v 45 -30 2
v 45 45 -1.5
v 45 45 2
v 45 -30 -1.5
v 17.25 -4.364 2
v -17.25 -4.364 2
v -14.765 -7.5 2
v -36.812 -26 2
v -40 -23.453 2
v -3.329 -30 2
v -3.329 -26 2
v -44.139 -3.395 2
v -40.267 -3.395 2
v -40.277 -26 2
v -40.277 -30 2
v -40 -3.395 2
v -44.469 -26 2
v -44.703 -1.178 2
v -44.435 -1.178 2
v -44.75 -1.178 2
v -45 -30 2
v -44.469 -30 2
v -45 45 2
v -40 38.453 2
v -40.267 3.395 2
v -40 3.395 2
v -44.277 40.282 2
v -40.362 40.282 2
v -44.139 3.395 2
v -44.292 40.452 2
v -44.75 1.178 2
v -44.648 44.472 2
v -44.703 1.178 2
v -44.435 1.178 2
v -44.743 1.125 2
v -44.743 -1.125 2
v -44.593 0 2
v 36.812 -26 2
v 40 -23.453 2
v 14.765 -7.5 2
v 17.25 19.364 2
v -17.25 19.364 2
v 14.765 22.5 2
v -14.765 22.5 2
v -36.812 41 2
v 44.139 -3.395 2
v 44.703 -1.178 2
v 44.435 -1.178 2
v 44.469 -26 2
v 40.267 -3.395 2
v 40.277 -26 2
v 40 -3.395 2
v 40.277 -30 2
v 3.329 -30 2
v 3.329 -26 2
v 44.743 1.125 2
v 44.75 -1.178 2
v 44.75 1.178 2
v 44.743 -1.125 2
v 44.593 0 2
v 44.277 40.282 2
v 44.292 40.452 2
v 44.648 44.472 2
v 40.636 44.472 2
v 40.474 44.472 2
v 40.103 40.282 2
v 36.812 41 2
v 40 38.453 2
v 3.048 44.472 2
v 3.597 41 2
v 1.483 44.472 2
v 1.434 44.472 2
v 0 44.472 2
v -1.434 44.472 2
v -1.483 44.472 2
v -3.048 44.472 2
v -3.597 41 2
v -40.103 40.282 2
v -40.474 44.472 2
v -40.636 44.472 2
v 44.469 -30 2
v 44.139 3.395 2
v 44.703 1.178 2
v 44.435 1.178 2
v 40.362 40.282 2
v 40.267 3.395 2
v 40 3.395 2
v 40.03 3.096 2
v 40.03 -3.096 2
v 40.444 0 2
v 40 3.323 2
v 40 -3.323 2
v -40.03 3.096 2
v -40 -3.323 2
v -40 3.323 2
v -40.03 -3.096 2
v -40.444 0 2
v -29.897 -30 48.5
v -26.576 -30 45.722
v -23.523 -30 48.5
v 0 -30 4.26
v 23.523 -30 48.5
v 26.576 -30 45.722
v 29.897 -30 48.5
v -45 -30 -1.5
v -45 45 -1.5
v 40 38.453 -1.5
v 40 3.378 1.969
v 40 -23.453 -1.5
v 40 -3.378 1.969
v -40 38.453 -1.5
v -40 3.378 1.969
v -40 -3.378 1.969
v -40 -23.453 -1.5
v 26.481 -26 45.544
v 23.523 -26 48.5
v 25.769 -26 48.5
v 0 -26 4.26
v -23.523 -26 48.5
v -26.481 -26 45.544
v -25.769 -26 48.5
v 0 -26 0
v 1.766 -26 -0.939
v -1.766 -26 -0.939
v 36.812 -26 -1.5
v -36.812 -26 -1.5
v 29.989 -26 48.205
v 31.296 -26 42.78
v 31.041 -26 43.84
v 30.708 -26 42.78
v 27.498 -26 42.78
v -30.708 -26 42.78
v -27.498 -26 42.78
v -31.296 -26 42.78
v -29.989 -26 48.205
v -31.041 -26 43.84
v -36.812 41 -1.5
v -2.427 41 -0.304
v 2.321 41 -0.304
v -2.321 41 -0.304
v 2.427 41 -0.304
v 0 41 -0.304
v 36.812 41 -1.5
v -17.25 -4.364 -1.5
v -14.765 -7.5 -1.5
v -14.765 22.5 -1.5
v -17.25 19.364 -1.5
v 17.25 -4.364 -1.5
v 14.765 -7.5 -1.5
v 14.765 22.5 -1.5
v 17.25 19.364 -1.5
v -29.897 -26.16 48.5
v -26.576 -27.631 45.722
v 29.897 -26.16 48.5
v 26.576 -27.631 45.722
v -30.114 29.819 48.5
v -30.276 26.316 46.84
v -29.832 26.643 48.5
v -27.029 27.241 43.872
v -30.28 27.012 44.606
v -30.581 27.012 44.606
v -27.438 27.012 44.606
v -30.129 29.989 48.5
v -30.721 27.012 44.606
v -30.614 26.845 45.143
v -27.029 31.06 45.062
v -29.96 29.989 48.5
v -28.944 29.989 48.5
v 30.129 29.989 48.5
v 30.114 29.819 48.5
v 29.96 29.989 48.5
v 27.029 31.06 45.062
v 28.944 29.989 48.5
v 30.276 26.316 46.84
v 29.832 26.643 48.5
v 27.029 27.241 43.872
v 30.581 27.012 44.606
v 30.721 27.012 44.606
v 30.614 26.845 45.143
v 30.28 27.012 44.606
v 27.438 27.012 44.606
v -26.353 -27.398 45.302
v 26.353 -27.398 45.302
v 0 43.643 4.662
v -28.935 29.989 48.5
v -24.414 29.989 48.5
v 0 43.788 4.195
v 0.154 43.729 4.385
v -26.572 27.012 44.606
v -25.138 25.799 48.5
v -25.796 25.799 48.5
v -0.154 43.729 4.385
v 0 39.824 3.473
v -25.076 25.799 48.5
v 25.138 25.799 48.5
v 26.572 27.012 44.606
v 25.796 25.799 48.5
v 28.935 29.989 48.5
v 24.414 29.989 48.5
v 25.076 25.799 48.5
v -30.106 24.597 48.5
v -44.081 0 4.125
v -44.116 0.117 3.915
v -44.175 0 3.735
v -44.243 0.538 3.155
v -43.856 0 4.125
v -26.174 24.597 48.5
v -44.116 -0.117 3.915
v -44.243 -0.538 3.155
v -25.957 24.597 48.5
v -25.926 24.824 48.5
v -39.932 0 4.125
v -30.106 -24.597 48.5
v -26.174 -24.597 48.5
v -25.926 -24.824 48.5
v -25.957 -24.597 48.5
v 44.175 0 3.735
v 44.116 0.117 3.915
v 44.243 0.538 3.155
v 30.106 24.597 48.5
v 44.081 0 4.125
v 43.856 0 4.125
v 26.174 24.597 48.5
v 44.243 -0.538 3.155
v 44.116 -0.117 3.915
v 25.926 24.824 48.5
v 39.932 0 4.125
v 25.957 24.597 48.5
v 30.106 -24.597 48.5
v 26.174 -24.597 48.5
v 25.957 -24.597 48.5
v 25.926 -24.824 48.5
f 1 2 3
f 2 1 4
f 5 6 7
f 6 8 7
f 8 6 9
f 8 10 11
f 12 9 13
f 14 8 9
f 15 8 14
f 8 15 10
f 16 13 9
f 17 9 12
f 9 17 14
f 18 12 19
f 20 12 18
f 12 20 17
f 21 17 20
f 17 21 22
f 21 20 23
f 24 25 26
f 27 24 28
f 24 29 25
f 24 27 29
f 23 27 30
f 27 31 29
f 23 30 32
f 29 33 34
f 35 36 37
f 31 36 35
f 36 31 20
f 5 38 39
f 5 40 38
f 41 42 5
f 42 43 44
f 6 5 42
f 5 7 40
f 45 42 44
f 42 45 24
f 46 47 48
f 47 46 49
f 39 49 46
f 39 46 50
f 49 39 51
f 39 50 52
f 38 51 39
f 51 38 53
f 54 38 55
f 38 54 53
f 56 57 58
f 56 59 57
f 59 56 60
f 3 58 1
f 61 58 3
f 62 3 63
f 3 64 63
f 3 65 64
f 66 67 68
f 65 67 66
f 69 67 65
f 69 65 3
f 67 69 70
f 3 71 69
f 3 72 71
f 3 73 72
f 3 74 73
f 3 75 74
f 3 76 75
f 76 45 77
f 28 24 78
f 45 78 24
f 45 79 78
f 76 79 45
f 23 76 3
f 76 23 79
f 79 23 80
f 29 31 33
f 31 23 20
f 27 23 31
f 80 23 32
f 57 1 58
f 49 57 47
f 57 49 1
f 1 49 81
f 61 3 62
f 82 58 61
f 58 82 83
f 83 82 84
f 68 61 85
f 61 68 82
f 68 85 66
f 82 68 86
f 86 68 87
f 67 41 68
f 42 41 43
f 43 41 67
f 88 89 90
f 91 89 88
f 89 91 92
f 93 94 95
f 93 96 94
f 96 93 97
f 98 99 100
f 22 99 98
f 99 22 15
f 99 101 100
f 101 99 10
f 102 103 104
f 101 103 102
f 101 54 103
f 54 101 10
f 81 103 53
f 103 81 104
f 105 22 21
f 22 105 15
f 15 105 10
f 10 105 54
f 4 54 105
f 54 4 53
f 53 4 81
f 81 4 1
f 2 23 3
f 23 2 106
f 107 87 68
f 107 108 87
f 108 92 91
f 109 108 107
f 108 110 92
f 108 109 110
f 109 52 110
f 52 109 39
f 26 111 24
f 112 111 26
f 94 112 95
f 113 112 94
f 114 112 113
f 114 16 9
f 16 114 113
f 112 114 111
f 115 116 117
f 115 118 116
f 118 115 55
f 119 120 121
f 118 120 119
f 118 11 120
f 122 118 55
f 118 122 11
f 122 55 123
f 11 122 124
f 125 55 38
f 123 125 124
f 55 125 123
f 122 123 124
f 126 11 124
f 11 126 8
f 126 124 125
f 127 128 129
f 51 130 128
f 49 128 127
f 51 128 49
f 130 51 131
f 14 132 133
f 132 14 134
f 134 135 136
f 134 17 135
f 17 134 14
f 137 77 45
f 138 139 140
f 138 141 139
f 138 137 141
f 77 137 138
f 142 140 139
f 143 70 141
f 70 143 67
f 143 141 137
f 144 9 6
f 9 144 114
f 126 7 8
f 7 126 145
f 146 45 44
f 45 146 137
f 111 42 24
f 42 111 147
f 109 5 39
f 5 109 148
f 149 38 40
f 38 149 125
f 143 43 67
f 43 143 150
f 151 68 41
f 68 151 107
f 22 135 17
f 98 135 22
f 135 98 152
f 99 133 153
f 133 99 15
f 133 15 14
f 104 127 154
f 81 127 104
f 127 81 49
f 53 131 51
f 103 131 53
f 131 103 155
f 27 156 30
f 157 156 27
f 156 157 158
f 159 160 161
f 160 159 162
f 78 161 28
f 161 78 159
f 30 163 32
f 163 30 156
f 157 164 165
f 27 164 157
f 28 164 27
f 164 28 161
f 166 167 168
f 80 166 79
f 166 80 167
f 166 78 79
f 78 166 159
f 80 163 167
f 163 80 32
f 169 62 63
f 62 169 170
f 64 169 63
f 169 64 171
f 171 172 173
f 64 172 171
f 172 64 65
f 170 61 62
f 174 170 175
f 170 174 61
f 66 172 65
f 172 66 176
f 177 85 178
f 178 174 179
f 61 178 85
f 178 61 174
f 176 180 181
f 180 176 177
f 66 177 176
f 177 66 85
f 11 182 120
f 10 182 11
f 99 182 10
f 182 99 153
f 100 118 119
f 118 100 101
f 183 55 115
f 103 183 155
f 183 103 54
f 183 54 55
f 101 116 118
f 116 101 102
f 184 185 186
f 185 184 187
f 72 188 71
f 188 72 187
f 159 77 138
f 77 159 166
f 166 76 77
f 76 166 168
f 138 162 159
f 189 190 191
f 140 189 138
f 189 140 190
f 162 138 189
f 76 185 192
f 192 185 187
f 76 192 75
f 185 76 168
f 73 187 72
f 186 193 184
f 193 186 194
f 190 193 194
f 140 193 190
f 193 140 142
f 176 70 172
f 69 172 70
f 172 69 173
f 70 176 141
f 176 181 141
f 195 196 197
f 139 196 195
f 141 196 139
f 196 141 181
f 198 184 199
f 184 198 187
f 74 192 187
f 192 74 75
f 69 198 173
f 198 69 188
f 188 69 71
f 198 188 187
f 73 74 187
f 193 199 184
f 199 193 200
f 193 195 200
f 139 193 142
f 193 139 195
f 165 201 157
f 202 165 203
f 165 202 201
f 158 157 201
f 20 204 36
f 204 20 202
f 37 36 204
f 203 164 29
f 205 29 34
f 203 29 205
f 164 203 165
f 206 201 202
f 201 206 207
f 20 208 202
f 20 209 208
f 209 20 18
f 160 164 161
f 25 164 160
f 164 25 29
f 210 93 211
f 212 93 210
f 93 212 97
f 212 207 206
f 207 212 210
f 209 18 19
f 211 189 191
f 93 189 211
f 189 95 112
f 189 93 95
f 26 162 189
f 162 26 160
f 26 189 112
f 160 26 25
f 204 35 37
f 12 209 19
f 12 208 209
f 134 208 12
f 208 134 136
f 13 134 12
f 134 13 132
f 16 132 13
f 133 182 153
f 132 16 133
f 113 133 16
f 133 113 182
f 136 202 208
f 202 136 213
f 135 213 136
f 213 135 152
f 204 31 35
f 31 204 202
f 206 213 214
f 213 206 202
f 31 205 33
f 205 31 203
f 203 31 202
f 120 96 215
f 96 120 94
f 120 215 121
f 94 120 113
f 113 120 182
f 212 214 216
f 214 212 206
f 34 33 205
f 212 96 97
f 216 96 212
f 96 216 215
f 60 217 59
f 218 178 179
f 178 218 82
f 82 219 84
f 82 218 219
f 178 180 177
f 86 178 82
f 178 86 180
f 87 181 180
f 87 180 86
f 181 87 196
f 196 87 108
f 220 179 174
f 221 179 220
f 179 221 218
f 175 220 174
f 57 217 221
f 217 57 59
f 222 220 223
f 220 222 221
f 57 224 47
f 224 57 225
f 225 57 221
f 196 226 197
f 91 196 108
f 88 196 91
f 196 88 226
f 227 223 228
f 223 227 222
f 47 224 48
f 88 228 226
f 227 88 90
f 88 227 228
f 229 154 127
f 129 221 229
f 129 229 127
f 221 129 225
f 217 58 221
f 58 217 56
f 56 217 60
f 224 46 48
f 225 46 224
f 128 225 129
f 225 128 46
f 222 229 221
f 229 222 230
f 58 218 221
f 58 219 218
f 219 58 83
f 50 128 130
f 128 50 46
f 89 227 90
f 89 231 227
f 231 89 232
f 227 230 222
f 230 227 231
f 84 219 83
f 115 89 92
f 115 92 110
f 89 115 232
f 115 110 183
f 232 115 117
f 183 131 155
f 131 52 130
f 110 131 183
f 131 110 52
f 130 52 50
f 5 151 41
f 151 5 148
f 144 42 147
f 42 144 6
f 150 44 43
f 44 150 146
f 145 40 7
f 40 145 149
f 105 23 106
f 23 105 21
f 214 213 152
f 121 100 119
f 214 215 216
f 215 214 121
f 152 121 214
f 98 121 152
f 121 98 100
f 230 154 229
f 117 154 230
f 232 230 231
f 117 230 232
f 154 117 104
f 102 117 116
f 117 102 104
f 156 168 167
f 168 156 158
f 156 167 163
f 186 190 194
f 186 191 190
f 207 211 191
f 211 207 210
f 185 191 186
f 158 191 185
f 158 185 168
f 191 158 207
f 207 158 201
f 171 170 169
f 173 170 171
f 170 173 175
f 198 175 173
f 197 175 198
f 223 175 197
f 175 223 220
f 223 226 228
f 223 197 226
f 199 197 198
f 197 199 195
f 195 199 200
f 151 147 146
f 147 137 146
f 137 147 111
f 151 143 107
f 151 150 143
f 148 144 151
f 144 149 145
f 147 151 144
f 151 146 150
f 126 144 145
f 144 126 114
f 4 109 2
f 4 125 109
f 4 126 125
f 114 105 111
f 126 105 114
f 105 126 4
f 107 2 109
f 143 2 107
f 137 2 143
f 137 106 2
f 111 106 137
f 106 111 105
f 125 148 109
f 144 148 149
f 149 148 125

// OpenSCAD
// file: ../lib/torus.scad
module torus(
outer_diameter,
circle_diameter
) {
    rotate_extrude(convexity = 4)
    translate([(outer_diameter-circle_diameter)/2, 0, 0])
    circle(d=circle_diameter, $fn=$fn/3);
}
// file: ../rocket-bottom.scad
use <lib/centered_cube.scad>
use <lib/torus.scad>

translate([0,0,-1.1])
ccube([93,93,1]);

module nozzle() {
    color([.2,.2,.2])
    cylinder(d1=40, d2=16+(40-16)*((40-16)/40), h=16);

    color([.35,.35,.35])
    translate([0,0,16])
    torus(34, 5);

    color([.5,.5,.5])
    translate([0,0,16])
    cylinder(d1=16+(40-16)*((40-16)/40), d2=16, h=40-16);
}


module nozzle_and_fin() {
    nozzle();

    color([.8, .8, .8])
    translate([0,0,41.6]) {
        intersection() {
            cylinder(d=38, h=16);
            translate([0,0,-1])
            ccube([50,50,20], centered=[0,1,0]);
        }
        rotate([0,0,180])
        ccube([4,38,16], centered=[0,1,0]);
    }
    
    color([0,0,0])
    translate([0,0,40])
    ccube([16, 16, 8], centered=[1,1,0]);


    // fin mount
    color([1,1,1])
    translate([0,0,57.6])
    resize([38,32,64])
    cylinder(d1=32, d2=16, h=64);

    // fin
    color([1,1,1])
    translate([18,0,65.6])
    rotate([90,0,0])
    translate([0,0,-0.8])
    linear_extrude(height=1.6) {
        polygon(points=[
            [0,0],
            [3,-8],
            [32, -22],
            [32, -6],
            [0, 24]
        ]);
    }
}

module rocket_bottom() {
    nozzle();
    color([.8, .8, .8])
    translate([0,0,40])
    cylinder(d=16, h=18);

    for (r = [0:1:3]) {
        rotate([0,0,r*90])
        translate([42.5,0,0])
        nozzle_and_fin();
    }
    
    // bottom of fuel tank
    color([1,1,1])
    translate([0,0,58])
    cylinder(d=80, h=32);
}

rocket_bottom();
// file: ../lib/lego_brick_builder.scad
/*

 Basic Lego brick builder module for OpenScad by Jorg Janssen 2013 (CC BY-NC 3.0) 
 To use this in your own projects add:

 use <path_to_this_file/lego_brick_builder.scad>
 brick (length, width, height [,smooth]);

 Length and width are in standard lego brick dimensions. 
 Height is in flat brick heights, so for a normal lego brick height = 3.
 Add optional smooth = true for a brick without studs. 
 Use height = 0 to just put studs/knobs on top of other things.

 */
$fn = 50;
 
 // this is it:
brick(5,3,3);


// and this is how it's done:

FLU = 1.6; // Fundamental Lego Unit = 1.6 mm

BRICK_WIDTH = 5*FLU; // basic brick width
BRICK_HEIGHT = 6*FLU; // basic brick height
PLATE_HEIGHT = 2*FLU; // basic plate height
WALL_THICKNESS = FLU; // outer wall of the brick
STUD_RADIUS = 1.5*FLU; // studs are the small cylinders on top of the brick with the lego logo ('nopje' in Dutch)
STUD_HEIGHT = FLU; 
ANTI_STUD_RADIUS = 0.5*4.07*FLU;  // an anti stud is the hollow cylinder inside bricks that have length > 1 and width > 1
PIN_RADIUS = FLU; // a pin is the small cylinder inside bricks that have length = 1 or width = 1
SUPPORT_THICKNESS = 0.254; // support is the thin surface between anti studs, pins and walls, your printer might not print this thin, try thicker!
EDGE = 0.254; // this is the width and height of the bottom line edge of smooth bricks
CORRECTION = 0.1; // addition to each size, to make sure all parts connect by moving them a little inside each other

module brick(length = 4, width = 2, height = 3, smooth = false){

	// brick shell
	difference(){
		cube(size = [length*BRICK_WIDTH,width*BRICK_WIDTH,height*PLATE_HEIGHT]);
		translate([WALL_THICKNESS,WALL_THICKNESS,-WALL_THICKNESS])
		union(){
			cube(size = [length*BRICK_WIDTH-2*WALL_THICKNESS,width*BRICK_WIDTH-2*WALL_THICKNESS,height*PLATE_HEIGHT]);
			// stud inner holes, radius = pin radius
			if (!smooth) {
				translate([STUD_RADIUS+WALL_THICKNESS,STUD_RADIUS+WALL_THICKNESS,height*PLATE_HEIGHT])
				for (y = [0:width-1]){
					for (x = [0:length-1]){
						translate ([x*BRICK_WIDTH-WALL_THICKNESS,y*BRICK_WIDTH-WALL_THICKNESS,-CORRECTION])
						cylinder(h=WALL_THICKNESS+2*CORRECTION,r=PIN_RADIUS);
					}
				}
			}
			// small bottom line edge for smooth bricks
			else {
				translate([-WALL_THICKNESS-CORRECTION,-WALL_THICKNESS-CORRECTION,FLU-CORRECTION]) 
				difference() {
					cube([length*BRICK_WIDTH+2*CORRECTION,width*BRICK_WIDTH+2*CORRECTION,EDGE+CORRECTION]);
					translate([EDGE+CORRECTION,EDGE+CORRECTION,-CORRECTION])
					cube([length*BRICK_WIDTH-2*EDGE,width*BRICK_WIDTH-2*EDGE,EDGE+3*CORRECTION]); 
				}
			}
		}
	}
	// Studs
	if(!smooth){
		translate([STUD_RADIUS+WALL_THICKNESS,STUD_RADIUS+WALL_THICKNESS,height*PLATE_HEIGHT])
		for (y = [0:width-1]){
			for (x = [0:length-1]){
				translate ([x*BRICK_WIDTH,y*BRICK_WIDTH,-CORRECTION])
				difference(){
					cylinder(h=STUD_HEIGHT+CORRECTION, r=STUD_RADIUS);
					// Stud inner holes
					translate([0,0,-CORRECTION])
					cylinder(h=0.5*STUD_HEIGHT+CORRECTION,r=PIN_RADIUS);
				}
				// tech logo - disable this if your printer isn't capable of printing this small
				if ( length > width){
					translate([x*BRICK_WIDTH+0.8,y*BRICK_WIDTH-1.9,STUD_HEIGHT-CORRECTION])
					resize([1.2*1.7,2.2*1.7,0.254+CORRECTION])
					rotate(a=[0,0,90])
					import("tech.stl");
				}
				else {
					translate([x*BRICK_WIDTH-1.9,y*BRICK_WIDTH-0.8,STUD_HEIGHT-CORRECTION])
					resize([2.2*1.7,1.2*1.7,0.254+CORRECTION])
					import("tech.stl");				
				}				
				/* 
				// Alternative 2-square logo
				translate ([x*BRICK_WIDTH+CORRECTION,y*BRICK_WIDTH-CORRECTION,STUD_HEIGHT-CORRECTION])		
				cube([1,1,2*CORRECTION]);
				translate ([x*BRICK_WIDTH-0.9,y*BRICK_WIDTH-0.9,STUD_HEIGHT-CORRECTION])		
				cube([1,1,0.3]);
				*/				
			}
		}
	}
	// Pins x
	if (width == 1 && length > 1) {	
			for (x = [1:length-1]){
				translate([x*BRICK_WIDTH,0.5*BRICK_WIDTH,0])
				cylinder(h=height*PLATE_HEIGHT-WALL_THICKNESS+CORRECTION,r=PIN_RADIUS);
				// Supports
				if (height > 1) {
				translate([x*BRICK_WIDTH-0.5*SUPPORT_THICKNESS,CORRECTION,STUD_HEIGHT])
				cube(size=[SUPPORT_THICKNESS,BRICK_WIDTH-2*CORRECTION,height*PLATE_HEIGHT-STUD_HEIGHT-WALL_THICKNESS+CORRECTION]);
			}
		}
	}
	// Pins y
	if (length == 1 && width > 1) {	
			for (y = [1:width-1]){
			translate([0.5*BRICK_WIDTH,y*BRICK_WIDTH,0])
			cylinder(h=height*PLATE_HEIGHT-WALL_THICKNESS+CORRECTION,r=PIN_RADIUS);
			// Supports
			if (height > 1) {
			translate([CORRECTION,y*BRICK_WIDTH-0.5*SUPPORT_THICKNESS,STUD_HEIGHT])
			cube(size=[BRICK_WIDTH-2*CORRECTION,SUPPORT_THICKNESS,height*PLATE_HEIGHT-STUD_HEIGHT-WALL_THICKNESS+CORRECTION]);}
			
		}
	}
	// Anti Studs
	if (width > 1 && length > 1){
		difference(){
			union(){
				for(y = [1:width-1]){
					for(x = [1:length-1]){
						// anti studs
						translate([x*BRICK_WIDTH,y*BRICK_WIDTH,0])
						cylinder (h=height*PLATE_HEIGHT-WALL_THICKNESS+CORRECTION, r = ANTI_STUD_RADIUS);
						// Supports
						if (height > 1){
							// Support x
							if (x%2 == 0 && (length%2 == 0 || length%4 == 1 && x<length/2 || length%4 == 3 && x>length/2) || x%2 == 1 && (length%4 == 3 && x<length/2 || length%4 == 1 && x>length/2)) {
								translate([BRICK_WIDTH*x-0.5*SUPPORT_THICKNESS,y*BRICK_WIDTH-BRICK_WIDTH+WALL_THICKNESS-CORRECTION,STUD_HEIGHT])
								cube(size=[SUPPORT_THICKNESS,2*BRICK_WIDTH-2*WALL_THICKNESS,height*PLATE_HEIGHT-STUD_HEIGHT-WALL_THICKNESS+CORRECTION]);
							}
							// Supports y							
							if (y%2 == 0 && (width%2 == 0 || width%4 == 1 && y<width/2 || width%4 == 3 && y>width/2) || y%2 == 1 && (width%4 == 3 && y<width/2 || width%4 == 1 && y>width/2)) {
								translate([x*BRICK_WIDTH-BRICK_WIDTH+WALL_THICKNESS-CORRECTION,BRICK_WIDTH*y-0.5*SUPPORT_THICKNESS,STUD_HEIGHT])
								cube(size=[2*BRICK_WIDTH-2*WALL_THICKNESS,SUPPORT_THICKNESS,height*PLATE_HEIGHT-STUD_HEIGHT-WALL_THICKNESS+CORRECTION]);
							}
						}
					}
				}
			}
			union(){
				for(y = [1:width-1]){
					for(x = [1:length-1]){
						// hollow anti studs
						translate([x*BRICK_WIDTH,y*BRICK_WIDTH,-WALL_THICKNESS])
						cylinder (h=height*PLATE_HEIGHT, r = STUD_RADIUS);				
					}
				}
			}
		}		
	}
}
	
// file: ../lib/centered_cube.scad
module ccube(size, centered=[1,1,1]) {
    centered_cube(size, centered);
}

module centered_cube(size, centered=[1,1,1]) {
    translate([(-size[0]/2)*centered[0], (-size[1]/2)*centered[1], (-size[2]/2)*centered[2]])
    cube(size);
}
// main file
use <../shelf.scad>
use <../lib/centered_cube.scad>

g_t=3;

intersection() {
    translate([0,0,-50])
    rotate([0,180,0])
    gantry_layer3();

    translate([0,7.5,-g_t/2])
    ccube([90,75,50], centered=[1,1,0]);
}
